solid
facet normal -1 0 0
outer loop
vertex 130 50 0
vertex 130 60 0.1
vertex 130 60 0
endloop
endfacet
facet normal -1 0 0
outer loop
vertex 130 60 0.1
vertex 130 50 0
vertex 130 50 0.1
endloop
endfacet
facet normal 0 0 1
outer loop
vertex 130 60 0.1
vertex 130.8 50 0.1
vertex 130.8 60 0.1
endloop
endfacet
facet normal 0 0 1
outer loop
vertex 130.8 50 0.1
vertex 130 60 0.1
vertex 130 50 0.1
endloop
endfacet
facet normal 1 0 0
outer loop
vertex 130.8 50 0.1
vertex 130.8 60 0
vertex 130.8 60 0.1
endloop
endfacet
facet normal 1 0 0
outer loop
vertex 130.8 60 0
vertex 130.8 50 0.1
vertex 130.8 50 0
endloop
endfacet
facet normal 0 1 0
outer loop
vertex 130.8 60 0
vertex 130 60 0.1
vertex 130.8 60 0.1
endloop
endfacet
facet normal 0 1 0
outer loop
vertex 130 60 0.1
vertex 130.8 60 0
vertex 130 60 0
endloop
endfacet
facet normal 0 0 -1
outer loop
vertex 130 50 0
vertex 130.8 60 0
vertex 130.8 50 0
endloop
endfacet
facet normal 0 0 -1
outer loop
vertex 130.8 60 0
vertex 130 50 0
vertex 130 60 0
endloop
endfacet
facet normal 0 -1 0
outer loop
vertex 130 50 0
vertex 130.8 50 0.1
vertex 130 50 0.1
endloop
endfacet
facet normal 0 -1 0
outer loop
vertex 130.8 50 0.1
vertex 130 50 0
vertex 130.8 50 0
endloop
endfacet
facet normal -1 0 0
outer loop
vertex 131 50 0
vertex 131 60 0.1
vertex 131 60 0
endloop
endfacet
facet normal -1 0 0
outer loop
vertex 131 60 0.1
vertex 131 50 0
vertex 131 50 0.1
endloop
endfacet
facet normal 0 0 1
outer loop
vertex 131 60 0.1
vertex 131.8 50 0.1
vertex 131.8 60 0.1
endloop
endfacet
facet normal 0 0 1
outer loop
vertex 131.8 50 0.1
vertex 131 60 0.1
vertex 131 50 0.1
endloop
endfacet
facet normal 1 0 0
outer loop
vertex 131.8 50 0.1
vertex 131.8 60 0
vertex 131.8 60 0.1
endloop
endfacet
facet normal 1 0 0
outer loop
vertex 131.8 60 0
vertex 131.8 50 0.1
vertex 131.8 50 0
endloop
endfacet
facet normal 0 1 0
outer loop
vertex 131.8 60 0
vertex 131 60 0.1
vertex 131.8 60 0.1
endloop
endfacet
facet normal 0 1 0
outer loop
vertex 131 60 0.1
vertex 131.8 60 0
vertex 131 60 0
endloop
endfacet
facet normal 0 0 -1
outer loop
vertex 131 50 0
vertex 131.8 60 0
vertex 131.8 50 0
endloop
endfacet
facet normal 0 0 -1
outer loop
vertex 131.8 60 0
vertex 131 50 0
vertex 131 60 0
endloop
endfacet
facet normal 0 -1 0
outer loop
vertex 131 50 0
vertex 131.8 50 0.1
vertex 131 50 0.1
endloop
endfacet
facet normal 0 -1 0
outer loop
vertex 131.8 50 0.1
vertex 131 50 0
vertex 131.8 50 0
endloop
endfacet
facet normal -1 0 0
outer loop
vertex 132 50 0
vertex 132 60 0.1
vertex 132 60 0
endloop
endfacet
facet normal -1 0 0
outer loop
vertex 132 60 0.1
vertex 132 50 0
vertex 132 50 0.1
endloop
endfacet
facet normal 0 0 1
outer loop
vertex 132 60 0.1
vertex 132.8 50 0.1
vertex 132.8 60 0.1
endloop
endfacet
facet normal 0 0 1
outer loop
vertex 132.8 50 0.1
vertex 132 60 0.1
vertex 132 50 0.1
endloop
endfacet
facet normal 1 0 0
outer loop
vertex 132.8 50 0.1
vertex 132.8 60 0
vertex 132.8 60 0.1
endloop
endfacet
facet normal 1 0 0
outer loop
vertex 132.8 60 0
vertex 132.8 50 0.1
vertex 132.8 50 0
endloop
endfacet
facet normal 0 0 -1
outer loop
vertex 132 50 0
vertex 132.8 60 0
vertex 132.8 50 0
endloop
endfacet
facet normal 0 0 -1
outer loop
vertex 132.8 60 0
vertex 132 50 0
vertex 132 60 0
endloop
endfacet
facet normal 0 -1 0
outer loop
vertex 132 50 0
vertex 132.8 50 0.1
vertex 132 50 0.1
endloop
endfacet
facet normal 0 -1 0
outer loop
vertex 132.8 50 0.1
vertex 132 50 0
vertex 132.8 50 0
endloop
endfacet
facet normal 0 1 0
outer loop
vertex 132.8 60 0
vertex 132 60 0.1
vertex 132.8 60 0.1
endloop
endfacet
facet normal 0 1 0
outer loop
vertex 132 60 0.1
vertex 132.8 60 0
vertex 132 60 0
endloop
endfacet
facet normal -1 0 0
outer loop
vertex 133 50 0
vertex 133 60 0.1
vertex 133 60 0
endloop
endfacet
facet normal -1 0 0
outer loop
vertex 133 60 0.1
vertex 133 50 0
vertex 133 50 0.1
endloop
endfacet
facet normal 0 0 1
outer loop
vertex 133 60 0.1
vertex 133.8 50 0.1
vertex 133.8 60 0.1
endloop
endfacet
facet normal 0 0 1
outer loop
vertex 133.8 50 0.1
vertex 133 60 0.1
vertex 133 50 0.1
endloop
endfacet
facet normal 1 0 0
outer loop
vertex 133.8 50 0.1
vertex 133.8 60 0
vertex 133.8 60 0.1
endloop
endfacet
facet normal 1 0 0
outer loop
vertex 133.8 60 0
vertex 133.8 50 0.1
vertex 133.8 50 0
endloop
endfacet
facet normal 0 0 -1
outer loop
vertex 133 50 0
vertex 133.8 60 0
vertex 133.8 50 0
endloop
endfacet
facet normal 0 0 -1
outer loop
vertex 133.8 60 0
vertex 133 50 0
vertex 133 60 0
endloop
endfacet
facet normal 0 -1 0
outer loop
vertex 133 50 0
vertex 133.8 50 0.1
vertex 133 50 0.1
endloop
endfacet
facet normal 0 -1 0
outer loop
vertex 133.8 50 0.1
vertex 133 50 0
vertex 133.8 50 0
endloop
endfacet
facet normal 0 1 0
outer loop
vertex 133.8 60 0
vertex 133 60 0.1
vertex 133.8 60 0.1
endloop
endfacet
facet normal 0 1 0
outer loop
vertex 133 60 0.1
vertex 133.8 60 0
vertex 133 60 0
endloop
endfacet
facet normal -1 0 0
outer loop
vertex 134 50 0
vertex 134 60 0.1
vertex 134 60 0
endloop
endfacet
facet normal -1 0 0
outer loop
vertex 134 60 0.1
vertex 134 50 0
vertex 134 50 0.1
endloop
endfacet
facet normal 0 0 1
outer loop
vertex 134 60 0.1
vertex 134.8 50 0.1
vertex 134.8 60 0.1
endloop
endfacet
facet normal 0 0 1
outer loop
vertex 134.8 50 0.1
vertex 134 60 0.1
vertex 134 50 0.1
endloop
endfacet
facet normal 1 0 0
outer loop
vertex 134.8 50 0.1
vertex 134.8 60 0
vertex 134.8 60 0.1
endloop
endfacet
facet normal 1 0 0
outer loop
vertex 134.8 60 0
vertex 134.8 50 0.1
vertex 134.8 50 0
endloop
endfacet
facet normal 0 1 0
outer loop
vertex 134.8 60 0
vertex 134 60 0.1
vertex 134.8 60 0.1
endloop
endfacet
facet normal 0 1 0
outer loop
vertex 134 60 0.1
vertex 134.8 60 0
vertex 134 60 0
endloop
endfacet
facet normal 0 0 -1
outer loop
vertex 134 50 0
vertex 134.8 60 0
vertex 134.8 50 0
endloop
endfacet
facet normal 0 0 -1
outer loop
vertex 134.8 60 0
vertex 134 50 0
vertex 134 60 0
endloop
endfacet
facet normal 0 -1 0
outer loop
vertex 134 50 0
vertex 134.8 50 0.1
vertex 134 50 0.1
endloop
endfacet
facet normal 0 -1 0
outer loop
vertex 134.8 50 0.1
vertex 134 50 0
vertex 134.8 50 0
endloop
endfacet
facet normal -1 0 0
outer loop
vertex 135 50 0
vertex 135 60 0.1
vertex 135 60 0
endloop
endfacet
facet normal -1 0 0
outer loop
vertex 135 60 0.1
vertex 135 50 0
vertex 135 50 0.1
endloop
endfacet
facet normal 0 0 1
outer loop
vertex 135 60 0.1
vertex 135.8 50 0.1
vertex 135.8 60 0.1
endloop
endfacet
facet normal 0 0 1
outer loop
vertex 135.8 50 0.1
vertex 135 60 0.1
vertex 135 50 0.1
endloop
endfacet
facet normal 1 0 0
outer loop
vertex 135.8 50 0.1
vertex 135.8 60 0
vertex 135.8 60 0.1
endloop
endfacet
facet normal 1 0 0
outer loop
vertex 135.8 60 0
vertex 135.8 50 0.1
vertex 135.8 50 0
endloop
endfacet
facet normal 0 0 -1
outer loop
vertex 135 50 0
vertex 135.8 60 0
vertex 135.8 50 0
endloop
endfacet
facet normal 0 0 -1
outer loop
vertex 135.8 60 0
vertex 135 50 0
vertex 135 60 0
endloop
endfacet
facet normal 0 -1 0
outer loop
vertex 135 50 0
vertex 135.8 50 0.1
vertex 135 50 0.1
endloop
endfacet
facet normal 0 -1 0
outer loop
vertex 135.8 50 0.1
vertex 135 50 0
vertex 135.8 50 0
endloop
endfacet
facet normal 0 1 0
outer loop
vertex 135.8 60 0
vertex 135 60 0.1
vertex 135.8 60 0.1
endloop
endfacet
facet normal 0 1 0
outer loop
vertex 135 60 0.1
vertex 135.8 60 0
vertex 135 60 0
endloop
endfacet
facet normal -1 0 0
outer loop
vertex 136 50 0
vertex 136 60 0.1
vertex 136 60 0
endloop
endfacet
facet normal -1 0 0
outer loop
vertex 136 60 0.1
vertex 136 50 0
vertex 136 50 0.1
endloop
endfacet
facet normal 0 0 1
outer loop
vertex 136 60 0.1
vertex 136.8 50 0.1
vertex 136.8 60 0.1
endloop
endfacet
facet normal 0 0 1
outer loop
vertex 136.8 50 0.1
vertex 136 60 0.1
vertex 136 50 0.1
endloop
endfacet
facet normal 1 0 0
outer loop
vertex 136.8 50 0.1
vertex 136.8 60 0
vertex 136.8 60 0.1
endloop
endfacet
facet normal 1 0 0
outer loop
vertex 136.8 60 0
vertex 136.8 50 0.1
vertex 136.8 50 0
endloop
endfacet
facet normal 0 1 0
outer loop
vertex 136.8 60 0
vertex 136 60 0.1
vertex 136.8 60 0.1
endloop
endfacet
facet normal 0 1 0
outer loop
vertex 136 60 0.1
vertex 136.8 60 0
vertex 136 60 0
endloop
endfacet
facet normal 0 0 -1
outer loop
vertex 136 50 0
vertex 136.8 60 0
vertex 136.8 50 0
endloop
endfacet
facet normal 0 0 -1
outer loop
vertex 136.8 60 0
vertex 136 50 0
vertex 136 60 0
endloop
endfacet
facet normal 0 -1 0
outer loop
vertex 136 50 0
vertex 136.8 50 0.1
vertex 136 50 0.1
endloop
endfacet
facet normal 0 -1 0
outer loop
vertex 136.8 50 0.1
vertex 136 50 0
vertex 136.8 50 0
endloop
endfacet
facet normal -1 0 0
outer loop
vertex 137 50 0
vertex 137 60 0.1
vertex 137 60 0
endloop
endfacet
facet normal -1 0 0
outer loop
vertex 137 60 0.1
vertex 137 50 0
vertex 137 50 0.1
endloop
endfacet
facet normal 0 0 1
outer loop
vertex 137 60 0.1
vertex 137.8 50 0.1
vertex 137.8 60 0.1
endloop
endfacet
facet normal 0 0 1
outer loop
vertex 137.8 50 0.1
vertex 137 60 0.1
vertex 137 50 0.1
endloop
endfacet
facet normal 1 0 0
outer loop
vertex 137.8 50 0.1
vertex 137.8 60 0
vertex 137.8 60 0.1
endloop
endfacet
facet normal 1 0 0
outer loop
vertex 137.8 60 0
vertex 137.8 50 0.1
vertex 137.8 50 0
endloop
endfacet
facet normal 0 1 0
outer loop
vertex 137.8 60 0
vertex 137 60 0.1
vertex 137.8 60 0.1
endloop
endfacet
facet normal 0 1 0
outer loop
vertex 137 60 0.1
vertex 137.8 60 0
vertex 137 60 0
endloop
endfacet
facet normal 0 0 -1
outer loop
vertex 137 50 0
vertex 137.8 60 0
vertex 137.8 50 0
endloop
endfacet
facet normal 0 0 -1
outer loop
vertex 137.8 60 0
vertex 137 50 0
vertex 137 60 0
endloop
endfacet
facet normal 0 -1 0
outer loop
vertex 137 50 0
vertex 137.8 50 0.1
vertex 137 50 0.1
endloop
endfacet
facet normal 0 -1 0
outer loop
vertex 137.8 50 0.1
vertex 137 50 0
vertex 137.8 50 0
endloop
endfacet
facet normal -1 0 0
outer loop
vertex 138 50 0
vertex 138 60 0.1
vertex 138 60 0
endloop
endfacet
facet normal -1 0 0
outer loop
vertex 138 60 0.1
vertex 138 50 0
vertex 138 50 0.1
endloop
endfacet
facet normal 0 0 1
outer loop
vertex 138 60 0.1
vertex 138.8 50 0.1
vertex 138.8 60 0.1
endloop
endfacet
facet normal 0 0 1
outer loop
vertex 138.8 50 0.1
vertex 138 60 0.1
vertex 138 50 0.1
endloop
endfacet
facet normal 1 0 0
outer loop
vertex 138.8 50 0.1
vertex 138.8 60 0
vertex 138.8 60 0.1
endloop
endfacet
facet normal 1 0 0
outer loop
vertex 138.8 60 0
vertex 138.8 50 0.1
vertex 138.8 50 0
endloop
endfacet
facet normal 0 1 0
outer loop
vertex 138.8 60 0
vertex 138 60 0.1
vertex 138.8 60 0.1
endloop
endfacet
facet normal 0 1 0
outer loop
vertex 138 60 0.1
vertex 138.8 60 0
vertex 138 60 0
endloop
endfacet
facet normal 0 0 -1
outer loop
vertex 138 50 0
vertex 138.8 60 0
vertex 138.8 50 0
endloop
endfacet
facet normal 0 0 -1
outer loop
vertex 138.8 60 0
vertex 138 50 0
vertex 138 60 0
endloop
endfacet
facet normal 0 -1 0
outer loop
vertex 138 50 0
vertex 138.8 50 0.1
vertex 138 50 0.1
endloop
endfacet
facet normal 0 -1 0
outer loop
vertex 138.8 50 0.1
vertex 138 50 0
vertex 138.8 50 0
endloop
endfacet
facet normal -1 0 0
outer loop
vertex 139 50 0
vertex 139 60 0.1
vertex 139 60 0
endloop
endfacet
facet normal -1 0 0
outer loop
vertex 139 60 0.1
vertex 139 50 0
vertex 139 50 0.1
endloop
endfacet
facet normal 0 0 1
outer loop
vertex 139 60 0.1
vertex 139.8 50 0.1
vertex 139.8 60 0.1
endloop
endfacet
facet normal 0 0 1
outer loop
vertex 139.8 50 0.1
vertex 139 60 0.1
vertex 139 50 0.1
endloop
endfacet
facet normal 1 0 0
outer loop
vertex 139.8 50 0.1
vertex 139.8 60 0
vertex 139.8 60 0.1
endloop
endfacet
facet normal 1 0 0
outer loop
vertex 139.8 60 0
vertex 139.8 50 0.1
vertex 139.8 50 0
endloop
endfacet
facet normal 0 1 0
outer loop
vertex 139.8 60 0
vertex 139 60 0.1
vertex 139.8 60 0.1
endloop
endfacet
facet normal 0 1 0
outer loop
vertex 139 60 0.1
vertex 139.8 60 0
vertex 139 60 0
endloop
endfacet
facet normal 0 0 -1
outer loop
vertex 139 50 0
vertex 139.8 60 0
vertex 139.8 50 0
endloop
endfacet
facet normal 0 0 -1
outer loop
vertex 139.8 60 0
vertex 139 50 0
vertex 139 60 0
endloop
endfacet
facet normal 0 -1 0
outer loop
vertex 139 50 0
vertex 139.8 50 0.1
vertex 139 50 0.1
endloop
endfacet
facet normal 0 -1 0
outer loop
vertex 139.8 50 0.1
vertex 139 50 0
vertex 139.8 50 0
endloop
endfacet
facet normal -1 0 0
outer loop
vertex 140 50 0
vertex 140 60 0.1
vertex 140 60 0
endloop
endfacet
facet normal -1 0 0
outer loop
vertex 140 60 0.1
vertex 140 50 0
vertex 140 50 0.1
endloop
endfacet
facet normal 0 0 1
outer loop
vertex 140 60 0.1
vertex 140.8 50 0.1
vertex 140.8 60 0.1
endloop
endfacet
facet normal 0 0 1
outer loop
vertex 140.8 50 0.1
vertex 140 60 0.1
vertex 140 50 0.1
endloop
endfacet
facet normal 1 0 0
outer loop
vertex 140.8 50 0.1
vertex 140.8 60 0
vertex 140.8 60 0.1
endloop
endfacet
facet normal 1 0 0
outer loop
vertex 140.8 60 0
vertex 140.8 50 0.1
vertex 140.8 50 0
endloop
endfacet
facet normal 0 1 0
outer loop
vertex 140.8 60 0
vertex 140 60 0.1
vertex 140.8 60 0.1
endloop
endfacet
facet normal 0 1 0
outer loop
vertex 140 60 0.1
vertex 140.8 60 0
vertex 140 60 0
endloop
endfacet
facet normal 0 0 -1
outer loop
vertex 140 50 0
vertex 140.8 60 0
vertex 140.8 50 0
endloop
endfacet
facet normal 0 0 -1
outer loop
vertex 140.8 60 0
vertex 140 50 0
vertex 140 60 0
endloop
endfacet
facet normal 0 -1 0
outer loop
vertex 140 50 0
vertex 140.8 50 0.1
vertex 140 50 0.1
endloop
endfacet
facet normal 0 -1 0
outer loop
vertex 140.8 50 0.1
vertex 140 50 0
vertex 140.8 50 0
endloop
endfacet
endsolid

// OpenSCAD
translate([10+120,10+40,0])
        for (i = [0 : 10]){
            translate([i,0,0])
                cube(size = [0.8,10,0.1]);
    }
